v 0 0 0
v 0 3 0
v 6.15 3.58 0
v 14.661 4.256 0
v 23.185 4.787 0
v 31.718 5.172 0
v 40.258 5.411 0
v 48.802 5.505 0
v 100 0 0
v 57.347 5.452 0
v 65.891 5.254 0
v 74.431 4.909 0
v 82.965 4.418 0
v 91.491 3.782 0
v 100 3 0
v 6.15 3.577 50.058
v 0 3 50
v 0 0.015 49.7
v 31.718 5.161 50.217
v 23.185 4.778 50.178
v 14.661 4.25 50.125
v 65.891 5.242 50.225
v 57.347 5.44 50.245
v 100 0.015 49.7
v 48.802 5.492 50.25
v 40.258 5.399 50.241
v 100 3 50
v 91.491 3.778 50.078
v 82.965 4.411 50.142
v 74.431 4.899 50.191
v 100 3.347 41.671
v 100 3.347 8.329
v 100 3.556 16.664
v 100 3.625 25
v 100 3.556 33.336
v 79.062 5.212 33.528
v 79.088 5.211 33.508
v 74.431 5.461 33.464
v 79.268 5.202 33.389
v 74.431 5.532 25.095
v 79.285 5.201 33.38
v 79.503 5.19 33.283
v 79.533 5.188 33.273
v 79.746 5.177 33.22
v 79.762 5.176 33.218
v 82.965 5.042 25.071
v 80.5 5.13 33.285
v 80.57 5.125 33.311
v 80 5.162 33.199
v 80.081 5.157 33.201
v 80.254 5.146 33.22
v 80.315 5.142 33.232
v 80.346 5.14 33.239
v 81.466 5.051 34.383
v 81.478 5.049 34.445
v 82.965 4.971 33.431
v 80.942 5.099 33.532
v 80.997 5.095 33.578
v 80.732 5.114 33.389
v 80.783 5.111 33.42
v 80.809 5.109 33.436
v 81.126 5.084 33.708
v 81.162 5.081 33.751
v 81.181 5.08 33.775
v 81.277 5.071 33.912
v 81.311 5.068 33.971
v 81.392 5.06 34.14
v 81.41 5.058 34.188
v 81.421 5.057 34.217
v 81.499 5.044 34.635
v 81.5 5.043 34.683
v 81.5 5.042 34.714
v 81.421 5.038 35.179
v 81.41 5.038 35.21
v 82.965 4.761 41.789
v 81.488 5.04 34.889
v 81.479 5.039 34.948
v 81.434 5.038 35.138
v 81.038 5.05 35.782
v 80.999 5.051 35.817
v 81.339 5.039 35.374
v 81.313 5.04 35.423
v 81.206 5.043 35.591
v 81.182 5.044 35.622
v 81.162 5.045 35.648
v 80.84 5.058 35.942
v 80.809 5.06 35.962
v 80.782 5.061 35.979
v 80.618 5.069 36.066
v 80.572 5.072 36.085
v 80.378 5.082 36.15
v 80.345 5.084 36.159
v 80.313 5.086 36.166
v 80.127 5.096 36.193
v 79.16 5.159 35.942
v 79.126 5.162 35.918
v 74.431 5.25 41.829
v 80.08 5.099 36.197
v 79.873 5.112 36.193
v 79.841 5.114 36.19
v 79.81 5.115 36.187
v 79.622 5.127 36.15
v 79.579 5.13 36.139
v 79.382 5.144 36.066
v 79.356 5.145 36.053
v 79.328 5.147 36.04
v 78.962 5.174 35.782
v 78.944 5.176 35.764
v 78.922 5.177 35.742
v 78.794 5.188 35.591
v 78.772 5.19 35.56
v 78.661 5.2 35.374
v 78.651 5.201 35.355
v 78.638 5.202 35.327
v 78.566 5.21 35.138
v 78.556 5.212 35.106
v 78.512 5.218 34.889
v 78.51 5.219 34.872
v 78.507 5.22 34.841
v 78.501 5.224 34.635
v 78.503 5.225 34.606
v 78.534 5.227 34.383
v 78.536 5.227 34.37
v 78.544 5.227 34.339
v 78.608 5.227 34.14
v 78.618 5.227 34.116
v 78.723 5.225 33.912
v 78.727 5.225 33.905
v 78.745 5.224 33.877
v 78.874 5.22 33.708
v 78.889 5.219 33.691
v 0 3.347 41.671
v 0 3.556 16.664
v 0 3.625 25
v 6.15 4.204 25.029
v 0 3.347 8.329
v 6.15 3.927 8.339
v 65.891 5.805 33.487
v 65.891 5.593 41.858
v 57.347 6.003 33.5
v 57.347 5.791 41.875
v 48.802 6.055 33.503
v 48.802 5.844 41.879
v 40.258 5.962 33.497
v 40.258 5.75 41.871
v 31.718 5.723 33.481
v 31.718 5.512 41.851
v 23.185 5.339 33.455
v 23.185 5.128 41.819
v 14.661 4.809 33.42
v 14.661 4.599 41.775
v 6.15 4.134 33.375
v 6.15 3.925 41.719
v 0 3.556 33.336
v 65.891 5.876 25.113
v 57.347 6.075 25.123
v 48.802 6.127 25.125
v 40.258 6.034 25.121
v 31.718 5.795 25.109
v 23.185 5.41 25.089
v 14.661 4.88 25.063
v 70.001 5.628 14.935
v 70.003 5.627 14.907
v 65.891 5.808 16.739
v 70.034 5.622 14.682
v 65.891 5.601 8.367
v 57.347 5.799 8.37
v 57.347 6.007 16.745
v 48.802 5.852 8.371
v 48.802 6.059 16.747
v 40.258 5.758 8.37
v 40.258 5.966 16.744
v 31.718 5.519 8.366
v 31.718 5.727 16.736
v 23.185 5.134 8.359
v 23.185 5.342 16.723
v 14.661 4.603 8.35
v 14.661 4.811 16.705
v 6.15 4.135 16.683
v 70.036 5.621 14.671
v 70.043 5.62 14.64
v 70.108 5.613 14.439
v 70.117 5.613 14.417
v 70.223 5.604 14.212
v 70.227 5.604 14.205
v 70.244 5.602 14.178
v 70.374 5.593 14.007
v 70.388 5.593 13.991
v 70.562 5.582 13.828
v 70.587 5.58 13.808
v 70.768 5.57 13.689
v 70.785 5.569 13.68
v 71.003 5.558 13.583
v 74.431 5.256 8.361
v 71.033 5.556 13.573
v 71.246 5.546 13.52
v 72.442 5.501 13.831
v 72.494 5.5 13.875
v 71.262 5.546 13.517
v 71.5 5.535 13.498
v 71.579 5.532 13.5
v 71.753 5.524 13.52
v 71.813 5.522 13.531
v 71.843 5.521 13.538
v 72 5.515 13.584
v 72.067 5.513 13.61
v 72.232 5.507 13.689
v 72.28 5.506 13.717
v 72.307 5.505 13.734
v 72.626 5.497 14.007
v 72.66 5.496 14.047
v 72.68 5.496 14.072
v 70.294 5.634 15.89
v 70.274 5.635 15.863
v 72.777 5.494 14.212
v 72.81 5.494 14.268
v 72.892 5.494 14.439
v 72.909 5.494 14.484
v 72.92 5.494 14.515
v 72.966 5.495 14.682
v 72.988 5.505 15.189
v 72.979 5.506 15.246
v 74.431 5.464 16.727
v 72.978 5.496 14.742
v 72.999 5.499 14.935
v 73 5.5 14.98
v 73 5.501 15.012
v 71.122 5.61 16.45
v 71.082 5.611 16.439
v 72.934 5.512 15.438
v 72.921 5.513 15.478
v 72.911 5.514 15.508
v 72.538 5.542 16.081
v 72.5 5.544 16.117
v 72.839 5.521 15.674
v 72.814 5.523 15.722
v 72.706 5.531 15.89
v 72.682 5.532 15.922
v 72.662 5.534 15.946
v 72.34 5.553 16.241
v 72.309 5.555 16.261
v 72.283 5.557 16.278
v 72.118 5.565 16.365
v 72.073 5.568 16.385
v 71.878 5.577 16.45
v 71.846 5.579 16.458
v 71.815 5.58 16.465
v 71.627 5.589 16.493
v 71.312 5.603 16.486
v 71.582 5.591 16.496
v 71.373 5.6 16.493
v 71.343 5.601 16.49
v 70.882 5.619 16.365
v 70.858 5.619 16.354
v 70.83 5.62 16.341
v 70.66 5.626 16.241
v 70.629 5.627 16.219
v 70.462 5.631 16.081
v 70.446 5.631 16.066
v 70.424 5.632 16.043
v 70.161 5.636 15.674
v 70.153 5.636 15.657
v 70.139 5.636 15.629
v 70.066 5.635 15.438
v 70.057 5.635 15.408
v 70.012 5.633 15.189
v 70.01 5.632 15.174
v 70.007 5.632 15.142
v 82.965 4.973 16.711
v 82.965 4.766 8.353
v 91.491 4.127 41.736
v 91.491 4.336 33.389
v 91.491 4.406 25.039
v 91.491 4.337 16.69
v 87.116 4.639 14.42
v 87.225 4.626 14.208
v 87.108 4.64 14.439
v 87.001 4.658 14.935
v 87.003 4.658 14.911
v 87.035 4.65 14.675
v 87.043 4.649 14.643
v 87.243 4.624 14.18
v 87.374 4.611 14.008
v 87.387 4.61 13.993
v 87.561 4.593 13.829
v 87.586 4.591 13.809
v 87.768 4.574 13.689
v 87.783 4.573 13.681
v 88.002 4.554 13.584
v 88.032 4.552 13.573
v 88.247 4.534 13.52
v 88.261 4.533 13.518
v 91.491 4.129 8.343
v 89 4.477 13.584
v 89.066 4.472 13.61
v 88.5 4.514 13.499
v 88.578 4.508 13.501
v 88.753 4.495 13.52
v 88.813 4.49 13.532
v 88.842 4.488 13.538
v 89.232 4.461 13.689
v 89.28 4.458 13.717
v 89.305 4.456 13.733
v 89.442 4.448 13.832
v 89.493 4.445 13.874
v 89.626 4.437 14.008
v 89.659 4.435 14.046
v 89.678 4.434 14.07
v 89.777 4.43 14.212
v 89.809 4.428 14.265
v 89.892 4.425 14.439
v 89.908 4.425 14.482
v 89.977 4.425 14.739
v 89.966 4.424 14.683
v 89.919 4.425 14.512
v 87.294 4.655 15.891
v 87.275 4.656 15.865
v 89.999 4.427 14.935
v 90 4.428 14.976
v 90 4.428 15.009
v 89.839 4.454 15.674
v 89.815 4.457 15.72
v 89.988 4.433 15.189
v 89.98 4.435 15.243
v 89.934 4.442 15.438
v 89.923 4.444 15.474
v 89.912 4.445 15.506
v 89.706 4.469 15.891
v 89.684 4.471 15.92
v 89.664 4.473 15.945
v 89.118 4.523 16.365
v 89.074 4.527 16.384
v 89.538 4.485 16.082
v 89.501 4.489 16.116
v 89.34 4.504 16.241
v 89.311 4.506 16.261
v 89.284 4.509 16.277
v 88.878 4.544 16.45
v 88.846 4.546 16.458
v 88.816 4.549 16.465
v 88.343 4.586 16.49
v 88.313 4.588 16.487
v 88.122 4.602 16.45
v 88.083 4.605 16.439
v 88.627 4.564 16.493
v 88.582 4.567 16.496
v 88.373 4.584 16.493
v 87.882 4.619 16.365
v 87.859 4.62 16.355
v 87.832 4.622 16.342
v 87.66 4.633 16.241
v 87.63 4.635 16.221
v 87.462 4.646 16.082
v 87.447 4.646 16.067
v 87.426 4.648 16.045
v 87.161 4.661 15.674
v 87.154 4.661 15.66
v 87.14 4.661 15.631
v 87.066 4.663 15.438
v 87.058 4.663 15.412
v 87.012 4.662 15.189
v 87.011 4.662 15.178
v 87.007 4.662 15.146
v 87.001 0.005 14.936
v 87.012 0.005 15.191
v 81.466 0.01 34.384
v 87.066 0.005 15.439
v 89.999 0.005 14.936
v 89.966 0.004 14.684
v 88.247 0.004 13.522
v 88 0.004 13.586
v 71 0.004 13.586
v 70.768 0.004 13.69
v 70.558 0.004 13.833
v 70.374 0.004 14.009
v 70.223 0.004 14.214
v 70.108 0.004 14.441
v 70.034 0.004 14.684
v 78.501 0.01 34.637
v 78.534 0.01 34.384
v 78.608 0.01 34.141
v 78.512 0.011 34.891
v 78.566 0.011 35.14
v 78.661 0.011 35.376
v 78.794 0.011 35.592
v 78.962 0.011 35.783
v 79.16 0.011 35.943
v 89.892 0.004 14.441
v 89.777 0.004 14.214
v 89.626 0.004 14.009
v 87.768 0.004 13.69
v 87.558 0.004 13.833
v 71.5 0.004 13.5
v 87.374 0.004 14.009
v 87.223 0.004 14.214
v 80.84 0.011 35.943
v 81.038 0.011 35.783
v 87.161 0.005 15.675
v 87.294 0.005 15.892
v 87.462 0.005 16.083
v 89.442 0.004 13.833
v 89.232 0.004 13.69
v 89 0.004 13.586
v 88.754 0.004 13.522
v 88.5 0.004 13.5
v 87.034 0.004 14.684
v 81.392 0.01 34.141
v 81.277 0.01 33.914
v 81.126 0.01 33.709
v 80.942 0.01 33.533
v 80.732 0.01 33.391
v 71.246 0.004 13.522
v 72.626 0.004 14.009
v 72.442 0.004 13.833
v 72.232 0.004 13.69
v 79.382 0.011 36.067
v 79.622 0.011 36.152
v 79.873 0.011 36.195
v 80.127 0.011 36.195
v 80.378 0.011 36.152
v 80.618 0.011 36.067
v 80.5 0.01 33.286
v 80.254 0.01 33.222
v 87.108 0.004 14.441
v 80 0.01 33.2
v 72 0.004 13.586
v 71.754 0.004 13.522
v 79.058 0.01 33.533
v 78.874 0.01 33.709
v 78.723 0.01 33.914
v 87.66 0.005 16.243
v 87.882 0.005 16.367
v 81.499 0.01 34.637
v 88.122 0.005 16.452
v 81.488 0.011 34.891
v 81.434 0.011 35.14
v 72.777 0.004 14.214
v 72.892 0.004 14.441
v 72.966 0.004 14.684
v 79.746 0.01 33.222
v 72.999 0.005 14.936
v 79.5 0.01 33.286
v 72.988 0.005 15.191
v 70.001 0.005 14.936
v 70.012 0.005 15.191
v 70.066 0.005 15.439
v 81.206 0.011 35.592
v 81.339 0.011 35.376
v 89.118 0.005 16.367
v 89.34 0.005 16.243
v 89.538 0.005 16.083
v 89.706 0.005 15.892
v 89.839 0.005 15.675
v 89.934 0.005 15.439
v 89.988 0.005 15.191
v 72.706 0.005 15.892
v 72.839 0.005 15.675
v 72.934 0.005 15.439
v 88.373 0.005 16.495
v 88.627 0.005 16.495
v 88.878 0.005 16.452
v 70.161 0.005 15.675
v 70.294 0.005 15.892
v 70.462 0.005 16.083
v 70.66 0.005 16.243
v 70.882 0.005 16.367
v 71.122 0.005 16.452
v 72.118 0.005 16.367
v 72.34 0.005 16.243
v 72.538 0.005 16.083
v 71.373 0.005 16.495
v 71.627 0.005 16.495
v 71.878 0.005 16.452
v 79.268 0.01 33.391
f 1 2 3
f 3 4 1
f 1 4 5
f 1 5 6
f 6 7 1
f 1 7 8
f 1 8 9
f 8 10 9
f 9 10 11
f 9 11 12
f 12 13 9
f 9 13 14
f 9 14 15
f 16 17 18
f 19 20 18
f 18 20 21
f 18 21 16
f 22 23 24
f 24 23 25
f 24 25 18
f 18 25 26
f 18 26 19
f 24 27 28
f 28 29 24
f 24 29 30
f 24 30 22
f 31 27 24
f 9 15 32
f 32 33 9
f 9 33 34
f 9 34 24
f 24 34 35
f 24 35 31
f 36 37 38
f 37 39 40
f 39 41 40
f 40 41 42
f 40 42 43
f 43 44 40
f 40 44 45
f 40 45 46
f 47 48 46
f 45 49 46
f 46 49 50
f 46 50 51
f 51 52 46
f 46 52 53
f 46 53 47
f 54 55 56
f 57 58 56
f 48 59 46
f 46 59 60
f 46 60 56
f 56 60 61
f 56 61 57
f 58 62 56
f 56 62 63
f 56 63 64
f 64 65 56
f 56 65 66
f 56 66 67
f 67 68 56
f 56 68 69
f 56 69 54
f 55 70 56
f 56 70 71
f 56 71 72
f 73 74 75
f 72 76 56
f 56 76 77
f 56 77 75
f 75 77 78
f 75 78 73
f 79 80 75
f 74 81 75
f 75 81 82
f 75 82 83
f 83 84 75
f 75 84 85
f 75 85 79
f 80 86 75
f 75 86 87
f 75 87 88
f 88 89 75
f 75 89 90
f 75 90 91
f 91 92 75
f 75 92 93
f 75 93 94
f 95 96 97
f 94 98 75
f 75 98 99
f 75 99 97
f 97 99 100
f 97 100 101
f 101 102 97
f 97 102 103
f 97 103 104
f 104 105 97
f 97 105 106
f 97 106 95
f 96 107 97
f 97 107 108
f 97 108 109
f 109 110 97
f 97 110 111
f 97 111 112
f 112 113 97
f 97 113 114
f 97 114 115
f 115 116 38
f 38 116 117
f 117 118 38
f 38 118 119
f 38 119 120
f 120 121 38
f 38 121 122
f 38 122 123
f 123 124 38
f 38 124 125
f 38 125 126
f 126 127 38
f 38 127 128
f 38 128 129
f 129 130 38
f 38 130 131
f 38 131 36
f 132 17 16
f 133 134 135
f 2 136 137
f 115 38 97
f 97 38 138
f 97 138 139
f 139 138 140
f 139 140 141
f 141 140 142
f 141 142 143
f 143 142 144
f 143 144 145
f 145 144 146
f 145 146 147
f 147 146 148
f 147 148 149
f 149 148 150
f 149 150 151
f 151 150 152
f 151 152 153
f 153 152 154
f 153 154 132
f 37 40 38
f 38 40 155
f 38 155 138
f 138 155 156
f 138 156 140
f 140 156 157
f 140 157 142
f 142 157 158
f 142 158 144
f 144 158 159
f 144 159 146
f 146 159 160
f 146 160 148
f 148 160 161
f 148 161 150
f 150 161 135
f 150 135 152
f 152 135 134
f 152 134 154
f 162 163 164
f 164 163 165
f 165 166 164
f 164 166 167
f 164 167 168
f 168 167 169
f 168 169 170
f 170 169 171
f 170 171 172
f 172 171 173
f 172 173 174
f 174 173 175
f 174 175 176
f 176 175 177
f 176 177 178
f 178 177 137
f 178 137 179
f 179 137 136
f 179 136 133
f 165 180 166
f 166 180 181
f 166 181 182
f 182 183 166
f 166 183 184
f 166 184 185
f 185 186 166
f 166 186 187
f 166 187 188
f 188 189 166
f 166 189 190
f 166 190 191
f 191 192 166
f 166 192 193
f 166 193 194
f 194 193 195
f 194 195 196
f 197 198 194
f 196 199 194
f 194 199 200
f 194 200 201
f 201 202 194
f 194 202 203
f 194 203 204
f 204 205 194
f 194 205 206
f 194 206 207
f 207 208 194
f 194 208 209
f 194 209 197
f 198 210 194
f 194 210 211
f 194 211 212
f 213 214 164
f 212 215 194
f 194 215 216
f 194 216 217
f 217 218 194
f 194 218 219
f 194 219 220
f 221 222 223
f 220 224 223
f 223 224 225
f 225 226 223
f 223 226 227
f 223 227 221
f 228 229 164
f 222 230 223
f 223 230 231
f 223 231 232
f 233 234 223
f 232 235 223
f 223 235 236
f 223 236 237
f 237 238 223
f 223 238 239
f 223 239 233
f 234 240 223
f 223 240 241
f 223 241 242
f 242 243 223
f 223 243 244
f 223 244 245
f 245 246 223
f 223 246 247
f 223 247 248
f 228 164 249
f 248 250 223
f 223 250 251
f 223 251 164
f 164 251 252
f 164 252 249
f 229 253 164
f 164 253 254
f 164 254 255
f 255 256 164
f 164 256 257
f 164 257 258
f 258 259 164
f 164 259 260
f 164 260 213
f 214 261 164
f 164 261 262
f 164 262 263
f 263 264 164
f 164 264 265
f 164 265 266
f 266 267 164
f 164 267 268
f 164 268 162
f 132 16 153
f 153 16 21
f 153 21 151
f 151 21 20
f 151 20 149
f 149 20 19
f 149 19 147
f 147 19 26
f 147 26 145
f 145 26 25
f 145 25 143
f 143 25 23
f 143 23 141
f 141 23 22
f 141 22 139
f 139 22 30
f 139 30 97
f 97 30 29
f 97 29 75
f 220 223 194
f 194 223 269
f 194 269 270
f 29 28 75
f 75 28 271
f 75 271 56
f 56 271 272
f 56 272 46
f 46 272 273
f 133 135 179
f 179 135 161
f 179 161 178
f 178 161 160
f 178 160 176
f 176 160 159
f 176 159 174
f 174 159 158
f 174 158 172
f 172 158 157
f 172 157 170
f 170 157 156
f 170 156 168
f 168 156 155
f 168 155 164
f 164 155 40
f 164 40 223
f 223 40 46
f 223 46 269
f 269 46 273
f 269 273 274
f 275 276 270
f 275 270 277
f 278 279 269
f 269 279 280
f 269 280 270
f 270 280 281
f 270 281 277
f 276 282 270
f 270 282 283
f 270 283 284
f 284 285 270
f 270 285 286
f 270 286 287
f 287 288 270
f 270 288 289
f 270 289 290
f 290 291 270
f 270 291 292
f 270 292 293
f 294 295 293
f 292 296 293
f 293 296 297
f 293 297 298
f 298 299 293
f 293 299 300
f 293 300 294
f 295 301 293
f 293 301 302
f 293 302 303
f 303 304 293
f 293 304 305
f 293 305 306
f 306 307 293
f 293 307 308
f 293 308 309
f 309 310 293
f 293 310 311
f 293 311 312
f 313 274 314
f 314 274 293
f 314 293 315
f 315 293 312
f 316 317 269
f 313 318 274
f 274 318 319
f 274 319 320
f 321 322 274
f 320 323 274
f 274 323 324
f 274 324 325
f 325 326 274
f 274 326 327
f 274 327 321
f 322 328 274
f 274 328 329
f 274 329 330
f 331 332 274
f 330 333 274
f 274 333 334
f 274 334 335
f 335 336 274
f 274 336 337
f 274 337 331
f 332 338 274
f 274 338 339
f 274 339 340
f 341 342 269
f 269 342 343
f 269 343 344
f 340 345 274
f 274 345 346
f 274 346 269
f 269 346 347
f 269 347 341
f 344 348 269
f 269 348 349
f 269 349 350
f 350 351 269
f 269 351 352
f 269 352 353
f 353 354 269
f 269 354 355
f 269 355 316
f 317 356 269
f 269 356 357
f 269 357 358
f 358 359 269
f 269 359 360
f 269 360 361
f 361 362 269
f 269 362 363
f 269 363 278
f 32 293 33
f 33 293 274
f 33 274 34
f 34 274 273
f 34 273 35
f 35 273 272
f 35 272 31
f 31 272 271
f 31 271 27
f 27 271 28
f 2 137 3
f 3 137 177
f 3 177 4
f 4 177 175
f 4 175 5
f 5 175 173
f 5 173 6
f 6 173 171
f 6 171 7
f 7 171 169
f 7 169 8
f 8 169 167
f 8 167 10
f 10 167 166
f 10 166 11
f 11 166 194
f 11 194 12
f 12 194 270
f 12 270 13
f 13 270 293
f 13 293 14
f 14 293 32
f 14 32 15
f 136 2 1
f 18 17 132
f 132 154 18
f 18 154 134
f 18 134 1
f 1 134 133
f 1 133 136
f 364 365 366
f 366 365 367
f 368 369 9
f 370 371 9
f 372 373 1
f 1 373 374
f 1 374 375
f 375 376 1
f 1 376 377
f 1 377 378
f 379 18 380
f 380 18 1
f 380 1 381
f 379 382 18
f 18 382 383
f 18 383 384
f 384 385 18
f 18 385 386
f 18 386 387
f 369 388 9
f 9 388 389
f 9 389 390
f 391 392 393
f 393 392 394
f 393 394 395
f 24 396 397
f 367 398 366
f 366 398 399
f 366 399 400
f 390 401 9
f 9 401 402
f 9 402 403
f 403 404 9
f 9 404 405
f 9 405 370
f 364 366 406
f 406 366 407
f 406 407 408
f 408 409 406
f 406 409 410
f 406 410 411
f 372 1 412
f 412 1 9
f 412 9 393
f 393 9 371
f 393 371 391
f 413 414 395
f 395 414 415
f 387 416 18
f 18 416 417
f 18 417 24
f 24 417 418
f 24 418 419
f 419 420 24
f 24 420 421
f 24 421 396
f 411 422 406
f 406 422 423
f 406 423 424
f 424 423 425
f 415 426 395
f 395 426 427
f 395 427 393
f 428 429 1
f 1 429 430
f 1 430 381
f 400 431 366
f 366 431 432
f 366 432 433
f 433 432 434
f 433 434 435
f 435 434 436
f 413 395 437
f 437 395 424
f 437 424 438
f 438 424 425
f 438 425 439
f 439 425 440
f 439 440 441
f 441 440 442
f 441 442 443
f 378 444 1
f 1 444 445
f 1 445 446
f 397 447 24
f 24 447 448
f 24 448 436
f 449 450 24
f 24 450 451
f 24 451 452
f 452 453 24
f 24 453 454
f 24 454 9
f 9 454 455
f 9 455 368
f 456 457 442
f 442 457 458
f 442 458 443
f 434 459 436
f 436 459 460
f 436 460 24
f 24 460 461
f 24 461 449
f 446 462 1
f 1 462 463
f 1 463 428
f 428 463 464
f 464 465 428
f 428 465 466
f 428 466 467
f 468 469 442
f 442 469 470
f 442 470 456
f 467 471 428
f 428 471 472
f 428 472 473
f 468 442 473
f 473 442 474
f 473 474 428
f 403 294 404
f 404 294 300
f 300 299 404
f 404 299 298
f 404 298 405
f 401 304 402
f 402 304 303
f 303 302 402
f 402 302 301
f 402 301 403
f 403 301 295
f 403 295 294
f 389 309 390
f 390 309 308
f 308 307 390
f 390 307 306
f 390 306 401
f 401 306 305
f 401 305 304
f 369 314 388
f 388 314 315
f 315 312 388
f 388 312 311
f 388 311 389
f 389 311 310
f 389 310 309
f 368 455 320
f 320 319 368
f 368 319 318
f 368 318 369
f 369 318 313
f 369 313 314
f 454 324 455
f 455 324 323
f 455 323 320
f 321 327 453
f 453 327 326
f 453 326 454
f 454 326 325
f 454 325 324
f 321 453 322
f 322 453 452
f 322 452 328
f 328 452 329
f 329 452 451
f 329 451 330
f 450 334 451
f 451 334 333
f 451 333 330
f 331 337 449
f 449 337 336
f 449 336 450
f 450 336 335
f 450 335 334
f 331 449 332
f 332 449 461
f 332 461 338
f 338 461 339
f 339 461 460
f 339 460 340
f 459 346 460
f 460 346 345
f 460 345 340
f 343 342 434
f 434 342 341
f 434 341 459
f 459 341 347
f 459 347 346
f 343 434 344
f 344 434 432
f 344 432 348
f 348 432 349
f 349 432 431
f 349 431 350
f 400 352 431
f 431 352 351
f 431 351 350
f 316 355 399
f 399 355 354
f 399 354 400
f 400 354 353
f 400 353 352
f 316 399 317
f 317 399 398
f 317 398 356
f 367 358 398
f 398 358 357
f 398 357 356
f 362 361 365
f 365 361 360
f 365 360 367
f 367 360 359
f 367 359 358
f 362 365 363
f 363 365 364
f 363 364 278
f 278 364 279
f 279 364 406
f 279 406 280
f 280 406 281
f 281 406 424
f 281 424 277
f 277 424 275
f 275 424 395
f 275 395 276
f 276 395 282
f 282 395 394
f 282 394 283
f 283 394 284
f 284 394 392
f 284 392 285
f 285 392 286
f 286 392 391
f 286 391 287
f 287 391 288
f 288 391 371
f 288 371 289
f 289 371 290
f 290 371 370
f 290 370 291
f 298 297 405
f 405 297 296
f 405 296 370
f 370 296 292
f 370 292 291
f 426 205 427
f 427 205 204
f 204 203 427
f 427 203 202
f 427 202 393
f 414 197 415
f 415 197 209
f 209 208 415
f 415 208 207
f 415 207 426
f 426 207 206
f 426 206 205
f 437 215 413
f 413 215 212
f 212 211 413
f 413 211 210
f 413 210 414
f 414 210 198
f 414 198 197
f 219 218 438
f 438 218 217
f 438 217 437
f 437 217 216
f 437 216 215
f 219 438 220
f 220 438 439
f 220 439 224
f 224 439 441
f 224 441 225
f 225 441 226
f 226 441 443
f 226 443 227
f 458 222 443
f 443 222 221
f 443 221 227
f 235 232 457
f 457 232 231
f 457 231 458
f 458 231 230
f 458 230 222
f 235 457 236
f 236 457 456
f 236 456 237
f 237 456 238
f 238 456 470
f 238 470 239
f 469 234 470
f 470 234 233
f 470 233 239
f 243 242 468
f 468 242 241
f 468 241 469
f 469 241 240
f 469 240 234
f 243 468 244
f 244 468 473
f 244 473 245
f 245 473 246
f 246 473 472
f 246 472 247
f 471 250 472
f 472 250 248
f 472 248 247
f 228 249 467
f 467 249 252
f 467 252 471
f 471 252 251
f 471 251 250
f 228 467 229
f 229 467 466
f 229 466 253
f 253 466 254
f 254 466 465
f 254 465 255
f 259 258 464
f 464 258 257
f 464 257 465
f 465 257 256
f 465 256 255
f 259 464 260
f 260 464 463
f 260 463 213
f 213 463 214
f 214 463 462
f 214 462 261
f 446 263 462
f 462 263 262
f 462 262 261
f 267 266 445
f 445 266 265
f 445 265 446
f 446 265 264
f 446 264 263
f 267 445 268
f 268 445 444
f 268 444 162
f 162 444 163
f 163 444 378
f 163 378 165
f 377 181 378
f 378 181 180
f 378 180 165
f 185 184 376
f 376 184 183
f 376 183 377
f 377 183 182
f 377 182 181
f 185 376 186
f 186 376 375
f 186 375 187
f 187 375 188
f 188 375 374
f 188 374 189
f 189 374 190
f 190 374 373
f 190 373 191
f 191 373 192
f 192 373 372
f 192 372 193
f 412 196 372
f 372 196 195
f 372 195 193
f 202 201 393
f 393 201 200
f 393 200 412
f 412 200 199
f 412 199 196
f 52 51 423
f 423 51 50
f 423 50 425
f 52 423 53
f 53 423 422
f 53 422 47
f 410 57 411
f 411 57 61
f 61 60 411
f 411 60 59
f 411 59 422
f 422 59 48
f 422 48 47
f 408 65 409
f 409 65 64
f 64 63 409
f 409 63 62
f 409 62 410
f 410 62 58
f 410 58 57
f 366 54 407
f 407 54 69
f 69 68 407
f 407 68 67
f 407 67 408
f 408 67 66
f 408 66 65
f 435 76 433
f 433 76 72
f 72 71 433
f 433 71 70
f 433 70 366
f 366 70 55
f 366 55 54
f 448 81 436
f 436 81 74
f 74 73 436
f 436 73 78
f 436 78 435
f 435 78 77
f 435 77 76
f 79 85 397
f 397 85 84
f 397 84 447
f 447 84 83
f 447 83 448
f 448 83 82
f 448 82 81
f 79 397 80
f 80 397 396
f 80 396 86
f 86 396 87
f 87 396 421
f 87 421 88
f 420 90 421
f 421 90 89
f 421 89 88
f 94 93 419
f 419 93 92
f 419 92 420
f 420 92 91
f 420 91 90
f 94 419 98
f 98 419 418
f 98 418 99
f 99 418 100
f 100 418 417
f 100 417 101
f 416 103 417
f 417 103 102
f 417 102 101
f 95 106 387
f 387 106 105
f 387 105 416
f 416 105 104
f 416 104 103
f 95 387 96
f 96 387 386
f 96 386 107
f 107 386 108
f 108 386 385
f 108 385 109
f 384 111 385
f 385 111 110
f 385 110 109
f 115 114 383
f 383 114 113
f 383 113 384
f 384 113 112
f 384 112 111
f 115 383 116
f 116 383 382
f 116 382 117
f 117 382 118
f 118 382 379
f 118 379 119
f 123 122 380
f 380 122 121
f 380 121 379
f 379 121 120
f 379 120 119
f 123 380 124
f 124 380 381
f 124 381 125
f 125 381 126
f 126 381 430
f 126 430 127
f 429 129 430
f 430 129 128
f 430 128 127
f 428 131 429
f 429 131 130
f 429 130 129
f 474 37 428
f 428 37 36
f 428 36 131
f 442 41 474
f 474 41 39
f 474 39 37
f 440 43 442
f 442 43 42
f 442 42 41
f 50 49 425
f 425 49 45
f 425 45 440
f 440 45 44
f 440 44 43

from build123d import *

# Parameters (mm, degrees)
EXTRUDE_2_DEPTH     = 100
SKETCH_7_R          = 1.5
CUT_EXTRUDE_1_DEPTH = 100


with BuildPart() as part:
    # По траектории3: sweep along a path in Эскиз3
    with BuildLine(Plane(origin=(0, 0, 0), x_dir=(0, 0, -1), z_dir=(1, 0, 0))) as sweep_3_path:
        ThreePointArc((0, 3), (-25, 3.625391114), (-50, 3))
    # Эскиз1 → По траектории3 (sweep)
    with BuildSketch(Plane.XY):
        with BuildLine():
            Line((0, 0), (100, 0))
            Line((100, 0), (100, 3))
            ThreePointArc((100, 3), (50, 5.506281447), (0, 3))
            Line((0, 3), (0, 0))
        make_face()
    sweep(path=sweep_3_path.line)

    # Эскиз6 → Бобышка-Вытянуть2 (add)
    with BuildSketch(Plane.ZY):
        Polygon((0, 0), (49.700375235, 0.015), (50, 3), (0, 3), align=None)
    extrude(amount=-EXTRUDE_2_DEPTH)

    # Эскиз7 → Вырез-Вытянуть1 (cut)
    with BuildSketch(Plane(origin=(0, 0, 0), x_dir=(1, 0, 0), z_dir=(0, -0.9999999544557917, 0.00030180857279200576))):
        with Locations(Location((80, 34.700377498, 0), (0, 0, 270))):
            Circle(SKETCH_7_R)
        with Locations(Location((71.5, 15, 0), (0, 0, 270))):
            Circle(SKETCH_7_R)
        with Locations(Location((88.5, 15, 0), (0, 0, 270))):
            Circle(SKETCH_7_R)
    extrude(amount=-CUT_EXTRUDE_1_DEPTH, mode=Mode.SUBTRACT)


solid = part.part
